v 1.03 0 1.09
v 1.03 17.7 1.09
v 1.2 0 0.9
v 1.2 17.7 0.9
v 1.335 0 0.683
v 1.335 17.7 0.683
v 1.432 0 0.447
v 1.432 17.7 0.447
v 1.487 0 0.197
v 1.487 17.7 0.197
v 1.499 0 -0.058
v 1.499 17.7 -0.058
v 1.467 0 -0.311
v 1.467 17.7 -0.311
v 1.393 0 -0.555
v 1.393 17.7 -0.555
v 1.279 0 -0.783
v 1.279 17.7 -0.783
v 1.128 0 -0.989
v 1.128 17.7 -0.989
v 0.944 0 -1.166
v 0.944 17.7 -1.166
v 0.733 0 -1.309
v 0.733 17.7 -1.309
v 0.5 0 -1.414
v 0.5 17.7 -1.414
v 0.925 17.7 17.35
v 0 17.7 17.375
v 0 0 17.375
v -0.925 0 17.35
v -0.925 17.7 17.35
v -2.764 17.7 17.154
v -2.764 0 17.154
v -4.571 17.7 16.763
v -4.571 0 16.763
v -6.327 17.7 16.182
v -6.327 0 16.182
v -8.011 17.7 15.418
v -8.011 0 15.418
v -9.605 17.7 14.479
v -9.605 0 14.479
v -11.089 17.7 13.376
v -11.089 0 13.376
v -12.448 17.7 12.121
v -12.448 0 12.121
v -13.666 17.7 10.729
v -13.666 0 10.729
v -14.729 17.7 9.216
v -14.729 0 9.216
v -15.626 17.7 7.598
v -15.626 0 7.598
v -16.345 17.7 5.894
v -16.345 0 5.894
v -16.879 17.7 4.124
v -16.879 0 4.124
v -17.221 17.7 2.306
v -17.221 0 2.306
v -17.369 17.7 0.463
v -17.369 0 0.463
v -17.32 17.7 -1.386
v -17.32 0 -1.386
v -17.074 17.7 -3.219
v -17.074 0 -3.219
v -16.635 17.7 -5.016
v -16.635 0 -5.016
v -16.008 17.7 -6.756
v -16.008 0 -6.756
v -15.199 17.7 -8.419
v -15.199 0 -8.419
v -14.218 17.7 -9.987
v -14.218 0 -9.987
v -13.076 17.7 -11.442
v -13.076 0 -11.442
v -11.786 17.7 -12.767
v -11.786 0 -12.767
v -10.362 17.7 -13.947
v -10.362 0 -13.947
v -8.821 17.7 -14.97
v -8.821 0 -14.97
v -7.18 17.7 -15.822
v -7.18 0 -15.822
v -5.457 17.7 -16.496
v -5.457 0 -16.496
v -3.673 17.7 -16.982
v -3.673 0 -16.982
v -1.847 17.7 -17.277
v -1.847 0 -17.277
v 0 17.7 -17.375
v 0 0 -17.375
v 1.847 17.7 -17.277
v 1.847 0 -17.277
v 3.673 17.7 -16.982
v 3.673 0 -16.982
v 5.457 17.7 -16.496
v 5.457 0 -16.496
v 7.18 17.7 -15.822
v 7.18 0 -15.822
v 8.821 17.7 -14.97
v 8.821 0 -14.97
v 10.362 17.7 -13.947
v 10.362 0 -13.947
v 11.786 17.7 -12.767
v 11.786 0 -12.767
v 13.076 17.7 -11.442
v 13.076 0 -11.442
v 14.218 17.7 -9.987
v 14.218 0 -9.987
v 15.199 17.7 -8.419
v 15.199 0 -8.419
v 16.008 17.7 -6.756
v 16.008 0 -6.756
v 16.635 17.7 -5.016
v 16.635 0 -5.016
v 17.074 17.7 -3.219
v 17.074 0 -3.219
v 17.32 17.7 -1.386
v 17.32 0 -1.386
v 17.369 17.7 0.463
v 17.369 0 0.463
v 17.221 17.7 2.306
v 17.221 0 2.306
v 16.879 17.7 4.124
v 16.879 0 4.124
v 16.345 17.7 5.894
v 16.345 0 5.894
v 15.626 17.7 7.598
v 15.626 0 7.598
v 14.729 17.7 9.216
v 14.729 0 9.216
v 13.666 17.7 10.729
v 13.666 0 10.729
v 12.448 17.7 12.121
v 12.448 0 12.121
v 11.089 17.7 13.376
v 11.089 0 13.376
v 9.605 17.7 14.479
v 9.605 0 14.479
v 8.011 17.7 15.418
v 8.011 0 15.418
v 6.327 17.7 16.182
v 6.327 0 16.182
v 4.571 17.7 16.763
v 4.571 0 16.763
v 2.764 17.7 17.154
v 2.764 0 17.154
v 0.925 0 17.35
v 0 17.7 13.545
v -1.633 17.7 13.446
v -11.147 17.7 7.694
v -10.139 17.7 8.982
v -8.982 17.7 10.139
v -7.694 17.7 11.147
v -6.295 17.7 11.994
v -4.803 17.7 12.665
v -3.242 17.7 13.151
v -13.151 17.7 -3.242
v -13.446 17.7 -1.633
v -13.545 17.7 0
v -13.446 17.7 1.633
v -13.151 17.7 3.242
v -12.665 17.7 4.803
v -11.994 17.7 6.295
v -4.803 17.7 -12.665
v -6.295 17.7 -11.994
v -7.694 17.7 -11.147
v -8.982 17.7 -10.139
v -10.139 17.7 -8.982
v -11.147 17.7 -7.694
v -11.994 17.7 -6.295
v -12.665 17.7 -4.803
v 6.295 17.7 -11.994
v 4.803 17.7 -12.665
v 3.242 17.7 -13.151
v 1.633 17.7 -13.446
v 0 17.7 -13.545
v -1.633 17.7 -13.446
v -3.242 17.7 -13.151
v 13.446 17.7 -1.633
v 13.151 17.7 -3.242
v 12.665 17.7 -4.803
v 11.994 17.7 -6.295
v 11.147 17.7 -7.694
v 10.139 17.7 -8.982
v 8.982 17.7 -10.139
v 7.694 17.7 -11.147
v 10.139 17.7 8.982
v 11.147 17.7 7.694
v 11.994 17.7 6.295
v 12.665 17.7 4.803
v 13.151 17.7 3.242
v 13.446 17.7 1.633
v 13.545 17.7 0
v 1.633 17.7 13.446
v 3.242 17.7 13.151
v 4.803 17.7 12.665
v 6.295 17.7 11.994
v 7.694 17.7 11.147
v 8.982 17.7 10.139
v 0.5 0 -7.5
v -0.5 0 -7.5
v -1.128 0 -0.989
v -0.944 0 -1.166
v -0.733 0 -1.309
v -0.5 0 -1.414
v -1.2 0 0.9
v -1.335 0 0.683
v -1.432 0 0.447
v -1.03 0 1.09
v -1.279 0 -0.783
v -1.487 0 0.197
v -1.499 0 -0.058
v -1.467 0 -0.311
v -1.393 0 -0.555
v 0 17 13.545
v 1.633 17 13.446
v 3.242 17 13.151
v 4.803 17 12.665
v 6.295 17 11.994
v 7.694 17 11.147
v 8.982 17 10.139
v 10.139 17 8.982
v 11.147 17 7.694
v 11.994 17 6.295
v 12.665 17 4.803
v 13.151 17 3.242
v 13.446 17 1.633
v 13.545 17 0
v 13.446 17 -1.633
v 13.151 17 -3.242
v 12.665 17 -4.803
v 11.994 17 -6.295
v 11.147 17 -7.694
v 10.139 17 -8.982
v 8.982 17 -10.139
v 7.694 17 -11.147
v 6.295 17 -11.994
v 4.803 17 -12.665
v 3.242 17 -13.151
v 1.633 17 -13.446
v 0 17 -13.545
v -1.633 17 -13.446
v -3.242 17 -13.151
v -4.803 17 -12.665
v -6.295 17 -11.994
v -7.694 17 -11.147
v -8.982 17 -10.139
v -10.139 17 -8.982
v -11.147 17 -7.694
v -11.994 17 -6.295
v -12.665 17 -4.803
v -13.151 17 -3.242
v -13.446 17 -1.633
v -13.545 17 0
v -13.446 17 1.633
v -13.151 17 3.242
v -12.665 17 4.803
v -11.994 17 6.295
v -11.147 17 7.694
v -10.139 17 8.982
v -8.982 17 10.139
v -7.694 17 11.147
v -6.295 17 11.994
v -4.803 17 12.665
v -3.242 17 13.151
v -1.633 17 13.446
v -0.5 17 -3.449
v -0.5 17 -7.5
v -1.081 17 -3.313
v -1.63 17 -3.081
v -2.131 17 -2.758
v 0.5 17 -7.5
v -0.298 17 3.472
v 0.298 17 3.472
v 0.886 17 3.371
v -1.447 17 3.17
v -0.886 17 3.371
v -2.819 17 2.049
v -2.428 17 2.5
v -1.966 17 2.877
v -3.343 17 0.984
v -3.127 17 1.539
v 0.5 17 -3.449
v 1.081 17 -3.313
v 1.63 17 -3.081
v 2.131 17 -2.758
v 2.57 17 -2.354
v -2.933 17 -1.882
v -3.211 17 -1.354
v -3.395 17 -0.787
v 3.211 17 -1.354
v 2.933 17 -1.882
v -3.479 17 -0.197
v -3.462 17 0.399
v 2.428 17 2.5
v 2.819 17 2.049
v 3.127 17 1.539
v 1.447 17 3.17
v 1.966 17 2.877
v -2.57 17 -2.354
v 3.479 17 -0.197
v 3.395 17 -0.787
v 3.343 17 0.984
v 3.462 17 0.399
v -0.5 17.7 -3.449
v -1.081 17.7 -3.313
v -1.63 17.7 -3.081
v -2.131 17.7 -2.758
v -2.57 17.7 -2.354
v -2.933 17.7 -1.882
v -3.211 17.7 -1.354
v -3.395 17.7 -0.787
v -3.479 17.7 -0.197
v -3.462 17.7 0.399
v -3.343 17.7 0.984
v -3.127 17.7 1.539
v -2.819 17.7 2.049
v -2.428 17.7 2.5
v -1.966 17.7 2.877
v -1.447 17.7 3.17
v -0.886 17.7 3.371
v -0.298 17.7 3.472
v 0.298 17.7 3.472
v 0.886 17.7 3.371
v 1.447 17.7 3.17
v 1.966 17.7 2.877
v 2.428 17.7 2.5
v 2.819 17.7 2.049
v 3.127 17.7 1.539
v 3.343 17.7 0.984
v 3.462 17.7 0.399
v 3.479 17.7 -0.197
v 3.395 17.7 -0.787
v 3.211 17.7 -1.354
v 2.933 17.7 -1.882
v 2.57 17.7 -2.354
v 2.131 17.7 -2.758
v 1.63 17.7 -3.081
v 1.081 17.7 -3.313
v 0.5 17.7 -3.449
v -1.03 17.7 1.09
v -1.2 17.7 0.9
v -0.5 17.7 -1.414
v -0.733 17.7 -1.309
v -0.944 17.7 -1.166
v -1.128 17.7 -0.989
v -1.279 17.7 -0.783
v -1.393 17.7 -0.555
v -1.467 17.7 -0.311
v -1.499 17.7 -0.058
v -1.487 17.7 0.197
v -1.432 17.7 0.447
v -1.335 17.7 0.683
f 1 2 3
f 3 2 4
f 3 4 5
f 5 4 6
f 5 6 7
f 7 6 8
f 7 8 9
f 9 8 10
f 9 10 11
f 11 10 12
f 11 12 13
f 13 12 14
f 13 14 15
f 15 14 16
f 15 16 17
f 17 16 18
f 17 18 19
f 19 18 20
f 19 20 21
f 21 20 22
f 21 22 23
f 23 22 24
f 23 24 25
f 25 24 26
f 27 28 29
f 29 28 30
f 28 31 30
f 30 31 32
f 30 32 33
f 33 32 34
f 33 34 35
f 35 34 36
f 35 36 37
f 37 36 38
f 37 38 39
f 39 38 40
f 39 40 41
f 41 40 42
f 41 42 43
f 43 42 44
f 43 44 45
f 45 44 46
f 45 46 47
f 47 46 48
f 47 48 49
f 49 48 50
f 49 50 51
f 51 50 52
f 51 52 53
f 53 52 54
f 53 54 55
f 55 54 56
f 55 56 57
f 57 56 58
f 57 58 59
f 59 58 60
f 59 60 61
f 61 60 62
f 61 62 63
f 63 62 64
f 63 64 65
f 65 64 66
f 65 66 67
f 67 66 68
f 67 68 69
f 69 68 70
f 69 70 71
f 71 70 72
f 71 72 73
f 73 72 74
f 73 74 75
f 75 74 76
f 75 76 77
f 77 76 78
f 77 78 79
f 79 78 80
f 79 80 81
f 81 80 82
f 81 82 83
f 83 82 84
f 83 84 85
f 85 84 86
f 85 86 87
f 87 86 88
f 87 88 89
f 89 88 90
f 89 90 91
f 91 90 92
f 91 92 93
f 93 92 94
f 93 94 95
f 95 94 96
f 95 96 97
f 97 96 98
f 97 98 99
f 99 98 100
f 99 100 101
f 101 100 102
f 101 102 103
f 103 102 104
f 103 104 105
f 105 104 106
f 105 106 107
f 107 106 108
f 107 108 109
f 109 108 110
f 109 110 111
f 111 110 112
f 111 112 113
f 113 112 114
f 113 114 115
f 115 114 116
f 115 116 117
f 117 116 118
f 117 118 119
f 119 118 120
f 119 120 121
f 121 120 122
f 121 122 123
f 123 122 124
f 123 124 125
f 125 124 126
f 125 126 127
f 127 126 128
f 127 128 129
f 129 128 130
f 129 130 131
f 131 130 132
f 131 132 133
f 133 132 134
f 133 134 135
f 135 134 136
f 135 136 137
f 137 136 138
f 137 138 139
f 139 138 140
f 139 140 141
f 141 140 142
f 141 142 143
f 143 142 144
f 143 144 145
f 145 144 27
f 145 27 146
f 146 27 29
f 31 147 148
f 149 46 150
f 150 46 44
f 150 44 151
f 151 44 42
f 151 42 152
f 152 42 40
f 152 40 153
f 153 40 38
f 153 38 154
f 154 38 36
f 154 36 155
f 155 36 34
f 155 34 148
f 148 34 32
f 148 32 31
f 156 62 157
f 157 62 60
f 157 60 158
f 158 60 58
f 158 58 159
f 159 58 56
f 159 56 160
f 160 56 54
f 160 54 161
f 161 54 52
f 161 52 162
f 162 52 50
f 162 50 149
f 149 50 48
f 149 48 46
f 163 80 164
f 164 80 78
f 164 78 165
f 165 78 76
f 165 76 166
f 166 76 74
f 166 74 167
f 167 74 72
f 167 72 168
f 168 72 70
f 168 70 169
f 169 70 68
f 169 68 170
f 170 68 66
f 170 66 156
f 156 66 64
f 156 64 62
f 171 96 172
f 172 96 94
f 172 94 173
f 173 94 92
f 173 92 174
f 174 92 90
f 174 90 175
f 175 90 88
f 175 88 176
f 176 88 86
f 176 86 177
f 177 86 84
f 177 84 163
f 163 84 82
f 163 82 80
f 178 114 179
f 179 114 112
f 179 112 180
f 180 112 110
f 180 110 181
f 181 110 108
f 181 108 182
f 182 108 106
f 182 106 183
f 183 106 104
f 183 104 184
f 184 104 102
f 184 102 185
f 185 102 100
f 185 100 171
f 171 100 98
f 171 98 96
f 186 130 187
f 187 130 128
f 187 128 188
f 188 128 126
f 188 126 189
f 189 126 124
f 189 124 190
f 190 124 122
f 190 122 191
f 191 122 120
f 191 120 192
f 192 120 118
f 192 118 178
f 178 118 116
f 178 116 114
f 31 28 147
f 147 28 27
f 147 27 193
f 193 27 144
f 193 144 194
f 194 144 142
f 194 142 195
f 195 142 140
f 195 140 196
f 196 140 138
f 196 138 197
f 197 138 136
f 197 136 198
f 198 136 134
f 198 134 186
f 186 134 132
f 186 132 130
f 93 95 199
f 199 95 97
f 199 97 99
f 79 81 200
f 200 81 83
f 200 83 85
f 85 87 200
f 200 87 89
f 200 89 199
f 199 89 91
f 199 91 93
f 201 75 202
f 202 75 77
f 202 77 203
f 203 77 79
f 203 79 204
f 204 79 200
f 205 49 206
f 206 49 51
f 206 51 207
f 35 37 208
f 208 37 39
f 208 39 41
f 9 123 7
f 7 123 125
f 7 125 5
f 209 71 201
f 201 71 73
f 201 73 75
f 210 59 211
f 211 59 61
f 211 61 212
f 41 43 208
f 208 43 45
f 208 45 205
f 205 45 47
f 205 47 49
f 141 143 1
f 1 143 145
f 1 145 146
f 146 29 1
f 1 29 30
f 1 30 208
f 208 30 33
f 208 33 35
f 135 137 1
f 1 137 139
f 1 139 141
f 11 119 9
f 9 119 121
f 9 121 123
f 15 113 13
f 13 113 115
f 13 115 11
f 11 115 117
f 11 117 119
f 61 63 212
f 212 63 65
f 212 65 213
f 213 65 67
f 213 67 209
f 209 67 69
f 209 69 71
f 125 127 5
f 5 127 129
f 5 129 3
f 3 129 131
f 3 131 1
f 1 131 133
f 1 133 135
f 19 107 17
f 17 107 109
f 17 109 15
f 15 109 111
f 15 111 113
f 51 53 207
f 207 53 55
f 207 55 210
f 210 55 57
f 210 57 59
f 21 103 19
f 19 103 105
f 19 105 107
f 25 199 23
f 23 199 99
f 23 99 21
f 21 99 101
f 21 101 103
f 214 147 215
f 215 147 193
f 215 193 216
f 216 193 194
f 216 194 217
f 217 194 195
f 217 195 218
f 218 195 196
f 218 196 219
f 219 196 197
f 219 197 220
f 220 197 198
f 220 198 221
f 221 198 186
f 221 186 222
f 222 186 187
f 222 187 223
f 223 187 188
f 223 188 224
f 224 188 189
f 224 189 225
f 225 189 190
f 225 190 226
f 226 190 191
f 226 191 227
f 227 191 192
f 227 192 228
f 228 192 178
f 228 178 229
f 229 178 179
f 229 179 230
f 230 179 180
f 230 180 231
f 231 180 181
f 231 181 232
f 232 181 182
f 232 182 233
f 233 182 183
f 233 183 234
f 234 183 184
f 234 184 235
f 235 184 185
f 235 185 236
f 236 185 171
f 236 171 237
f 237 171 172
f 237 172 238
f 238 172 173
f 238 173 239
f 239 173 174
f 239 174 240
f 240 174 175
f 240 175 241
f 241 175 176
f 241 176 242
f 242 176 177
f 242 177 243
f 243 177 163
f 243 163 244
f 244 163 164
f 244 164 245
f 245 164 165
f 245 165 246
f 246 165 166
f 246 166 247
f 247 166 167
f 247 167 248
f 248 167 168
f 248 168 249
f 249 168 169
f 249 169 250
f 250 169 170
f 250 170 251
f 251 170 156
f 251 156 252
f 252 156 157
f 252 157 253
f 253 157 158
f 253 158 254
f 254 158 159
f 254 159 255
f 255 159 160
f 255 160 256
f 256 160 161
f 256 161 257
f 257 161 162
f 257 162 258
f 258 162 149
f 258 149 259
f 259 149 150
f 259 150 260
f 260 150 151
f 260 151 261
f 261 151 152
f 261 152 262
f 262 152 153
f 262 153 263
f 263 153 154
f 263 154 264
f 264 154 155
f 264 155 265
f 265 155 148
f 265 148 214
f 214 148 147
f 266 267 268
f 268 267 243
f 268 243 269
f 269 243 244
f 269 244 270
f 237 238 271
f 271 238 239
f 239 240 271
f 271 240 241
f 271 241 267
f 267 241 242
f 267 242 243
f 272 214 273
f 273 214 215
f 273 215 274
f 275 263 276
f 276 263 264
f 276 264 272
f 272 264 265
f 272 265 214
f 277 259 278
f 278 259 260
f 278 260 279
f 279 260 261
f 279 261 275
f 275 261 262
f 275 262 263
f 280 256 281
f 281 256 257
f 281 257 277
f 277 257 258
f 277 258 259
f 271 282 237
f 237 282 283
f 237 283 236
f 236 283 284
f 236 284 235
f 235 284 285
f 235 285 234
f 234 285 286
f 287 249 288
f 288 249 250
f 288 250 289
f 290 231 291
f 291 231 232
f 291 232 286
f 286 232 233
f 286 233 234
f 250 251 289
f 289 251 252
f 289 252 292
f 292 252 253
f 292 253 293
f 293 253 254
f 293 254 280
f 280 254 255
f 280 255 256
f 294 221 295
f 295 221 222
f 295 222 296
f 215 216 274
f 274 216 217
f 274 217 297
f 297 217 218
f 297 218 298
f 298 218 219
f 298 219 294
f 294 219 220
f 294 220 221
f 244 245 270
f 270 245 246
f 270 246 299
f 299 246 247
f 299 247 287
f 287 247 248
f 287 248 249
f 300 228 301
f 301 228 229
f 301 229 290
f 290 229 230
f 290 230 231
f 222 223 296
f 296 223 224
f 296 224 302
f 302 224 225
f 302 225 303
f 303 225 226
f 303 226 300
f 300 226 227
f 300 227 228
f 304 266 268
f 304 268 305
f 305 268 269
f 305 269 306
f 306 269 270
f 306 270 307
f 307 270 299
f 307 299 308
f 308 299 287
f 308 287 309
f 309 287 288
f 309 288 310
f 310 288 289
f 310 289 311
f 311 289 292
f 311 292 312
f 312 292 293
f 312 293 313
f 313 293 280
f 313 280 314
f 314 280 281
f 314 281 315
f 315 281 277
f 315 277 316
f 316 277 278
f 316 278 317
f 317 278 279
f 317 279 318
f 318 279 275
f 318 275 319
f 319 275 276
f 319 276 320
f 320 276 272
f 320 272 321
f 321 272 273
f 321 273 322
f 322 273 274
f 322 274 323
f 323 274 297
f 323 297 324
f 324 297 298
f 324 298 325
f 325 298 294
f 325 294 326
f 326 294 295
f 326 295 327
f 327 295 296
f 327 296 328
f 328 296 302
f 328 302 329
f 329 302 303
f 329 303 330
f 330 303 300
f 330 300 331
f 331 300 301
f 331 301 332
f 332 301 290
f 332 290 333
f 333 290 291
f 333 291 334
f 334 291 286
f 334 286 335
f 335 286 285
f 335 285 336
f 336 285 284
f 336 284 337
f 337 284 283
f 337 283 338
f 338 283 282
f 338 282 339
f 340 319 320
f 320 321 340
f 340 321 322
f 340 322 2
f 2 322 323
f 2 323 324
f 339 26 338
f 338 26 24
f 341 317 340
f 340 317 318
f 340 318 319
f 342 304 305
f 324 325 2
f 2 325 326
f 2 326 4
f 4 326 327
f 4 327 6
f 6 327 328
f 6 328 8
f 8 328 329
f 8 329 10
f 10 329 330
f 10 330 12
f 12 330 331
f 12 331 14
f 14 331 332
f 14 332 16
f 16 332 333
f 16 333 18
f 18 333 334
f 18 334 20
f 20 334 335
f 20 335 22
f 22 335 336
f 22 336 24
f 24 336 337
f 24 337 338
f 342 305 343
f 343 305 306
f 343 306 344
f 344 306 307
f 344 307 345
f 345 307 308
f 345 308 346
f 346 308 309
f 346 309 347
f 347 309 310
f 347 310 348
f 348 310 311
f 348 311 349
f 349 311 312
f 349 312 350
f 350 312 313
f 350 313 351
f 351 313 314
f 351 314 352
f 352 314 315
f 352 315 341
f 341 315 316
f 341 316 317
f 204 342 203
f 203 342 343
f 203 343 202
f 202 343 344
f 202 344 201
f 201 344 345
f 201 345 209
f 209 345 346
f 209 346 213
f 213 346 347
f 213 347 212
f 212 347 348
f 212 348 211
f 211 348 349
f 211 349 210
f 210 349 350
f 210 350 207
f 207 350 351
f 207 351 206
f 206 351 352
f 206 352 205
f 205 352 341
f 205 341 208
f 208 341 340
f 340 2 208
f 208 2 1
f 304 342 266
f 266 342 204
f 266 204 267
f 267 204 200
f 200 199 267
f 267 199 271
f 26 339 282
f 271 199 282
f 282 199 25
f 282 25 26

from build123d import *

# Parameters (mm, degrees)
SKETCH1_R           = 17.375
BOSS_EXTRUDE1_DEPTH = 17.7
SKETCH3_R           = 13.545
CUT_EXTRUDE1_DEPTH  = 0.7
SKETCH4_R           = 3.485
BOSS_EXTRUDE2_DEPTH = 0.7
CUT_EXTRUDE2_DEPTH  = 17.7
SKETCH6_W           = 1
SKETCH6_H           = 6.085786438
CUT_EXTRUDE3_DEPTH  = 17.7


with BuildPart() as part:
    # Sketch1 → Boss-Extrude1 (new body)
    with BuildSketch(Plane(origin=(0, 0, 0), x_dir=(1, 0, 0), z_dir=(0, 1, 0))):
        Circle(SKETCH1_R)
    extrude(amount=BOSS_EXTRUDE1_DEPTH)

    # Sketch3 → Cut-Extrude1 (cut)
    with BuildSketch(Plane(origin=(0, 17.7, 0), x_dir=(1, 0, 0), z_dir=(0, 1, 0))):
        Circle(SKETCH3_R)
    extrude(amount=-CUT_EXTRUDE1_DEPTH, mode=Mode.SUBTRACT)

    # Sketch4 → Boss-Extrude2 (add)
    with BuildSketch(Plane(origin=(0, 17, 0), x_dir=(1, 0, 0), z_dir=(0, 1, 0))):
        Circle(SKETCH4_R)
    extrude(amount=BOSS_EXTRUDE2_DEPTH)

    # Sketch5 → Cut-Extrude2 (cut)
    with BuildSketch(Plane(origin=(0, 17.7, 0), x_dir=(1, 0, 0), z_dir=(0, 1, 0))):
        with BuildLine():
            Line((-1.030485323, -1.09), (1.030485323, -1.09))
            ThreePointArc((1.030485323, -1.09), (0, 1.5), (-1.030485323, -1.09))
        make_face()
    extrude(amount=-CUT_EXTRUDE2_DEPTH, mode=Mode.SUBTRACT)

    # Sketch6 → Cut-Extrude3 (cut)
    with BuildSketch(Plane(origin=(0, 17.7, 0), x_dir=(1, 0, 0), z_dir=(0, 1, 0))):
        with Locations((0, 4.457106781)):
            Rectangle(SKETCH6_W, SKETCH6_H)
    extrude(amount=-CUT_EXTRUDE3_DEPTH, mode=Mode.SUBTRACT)


solid = part.part
